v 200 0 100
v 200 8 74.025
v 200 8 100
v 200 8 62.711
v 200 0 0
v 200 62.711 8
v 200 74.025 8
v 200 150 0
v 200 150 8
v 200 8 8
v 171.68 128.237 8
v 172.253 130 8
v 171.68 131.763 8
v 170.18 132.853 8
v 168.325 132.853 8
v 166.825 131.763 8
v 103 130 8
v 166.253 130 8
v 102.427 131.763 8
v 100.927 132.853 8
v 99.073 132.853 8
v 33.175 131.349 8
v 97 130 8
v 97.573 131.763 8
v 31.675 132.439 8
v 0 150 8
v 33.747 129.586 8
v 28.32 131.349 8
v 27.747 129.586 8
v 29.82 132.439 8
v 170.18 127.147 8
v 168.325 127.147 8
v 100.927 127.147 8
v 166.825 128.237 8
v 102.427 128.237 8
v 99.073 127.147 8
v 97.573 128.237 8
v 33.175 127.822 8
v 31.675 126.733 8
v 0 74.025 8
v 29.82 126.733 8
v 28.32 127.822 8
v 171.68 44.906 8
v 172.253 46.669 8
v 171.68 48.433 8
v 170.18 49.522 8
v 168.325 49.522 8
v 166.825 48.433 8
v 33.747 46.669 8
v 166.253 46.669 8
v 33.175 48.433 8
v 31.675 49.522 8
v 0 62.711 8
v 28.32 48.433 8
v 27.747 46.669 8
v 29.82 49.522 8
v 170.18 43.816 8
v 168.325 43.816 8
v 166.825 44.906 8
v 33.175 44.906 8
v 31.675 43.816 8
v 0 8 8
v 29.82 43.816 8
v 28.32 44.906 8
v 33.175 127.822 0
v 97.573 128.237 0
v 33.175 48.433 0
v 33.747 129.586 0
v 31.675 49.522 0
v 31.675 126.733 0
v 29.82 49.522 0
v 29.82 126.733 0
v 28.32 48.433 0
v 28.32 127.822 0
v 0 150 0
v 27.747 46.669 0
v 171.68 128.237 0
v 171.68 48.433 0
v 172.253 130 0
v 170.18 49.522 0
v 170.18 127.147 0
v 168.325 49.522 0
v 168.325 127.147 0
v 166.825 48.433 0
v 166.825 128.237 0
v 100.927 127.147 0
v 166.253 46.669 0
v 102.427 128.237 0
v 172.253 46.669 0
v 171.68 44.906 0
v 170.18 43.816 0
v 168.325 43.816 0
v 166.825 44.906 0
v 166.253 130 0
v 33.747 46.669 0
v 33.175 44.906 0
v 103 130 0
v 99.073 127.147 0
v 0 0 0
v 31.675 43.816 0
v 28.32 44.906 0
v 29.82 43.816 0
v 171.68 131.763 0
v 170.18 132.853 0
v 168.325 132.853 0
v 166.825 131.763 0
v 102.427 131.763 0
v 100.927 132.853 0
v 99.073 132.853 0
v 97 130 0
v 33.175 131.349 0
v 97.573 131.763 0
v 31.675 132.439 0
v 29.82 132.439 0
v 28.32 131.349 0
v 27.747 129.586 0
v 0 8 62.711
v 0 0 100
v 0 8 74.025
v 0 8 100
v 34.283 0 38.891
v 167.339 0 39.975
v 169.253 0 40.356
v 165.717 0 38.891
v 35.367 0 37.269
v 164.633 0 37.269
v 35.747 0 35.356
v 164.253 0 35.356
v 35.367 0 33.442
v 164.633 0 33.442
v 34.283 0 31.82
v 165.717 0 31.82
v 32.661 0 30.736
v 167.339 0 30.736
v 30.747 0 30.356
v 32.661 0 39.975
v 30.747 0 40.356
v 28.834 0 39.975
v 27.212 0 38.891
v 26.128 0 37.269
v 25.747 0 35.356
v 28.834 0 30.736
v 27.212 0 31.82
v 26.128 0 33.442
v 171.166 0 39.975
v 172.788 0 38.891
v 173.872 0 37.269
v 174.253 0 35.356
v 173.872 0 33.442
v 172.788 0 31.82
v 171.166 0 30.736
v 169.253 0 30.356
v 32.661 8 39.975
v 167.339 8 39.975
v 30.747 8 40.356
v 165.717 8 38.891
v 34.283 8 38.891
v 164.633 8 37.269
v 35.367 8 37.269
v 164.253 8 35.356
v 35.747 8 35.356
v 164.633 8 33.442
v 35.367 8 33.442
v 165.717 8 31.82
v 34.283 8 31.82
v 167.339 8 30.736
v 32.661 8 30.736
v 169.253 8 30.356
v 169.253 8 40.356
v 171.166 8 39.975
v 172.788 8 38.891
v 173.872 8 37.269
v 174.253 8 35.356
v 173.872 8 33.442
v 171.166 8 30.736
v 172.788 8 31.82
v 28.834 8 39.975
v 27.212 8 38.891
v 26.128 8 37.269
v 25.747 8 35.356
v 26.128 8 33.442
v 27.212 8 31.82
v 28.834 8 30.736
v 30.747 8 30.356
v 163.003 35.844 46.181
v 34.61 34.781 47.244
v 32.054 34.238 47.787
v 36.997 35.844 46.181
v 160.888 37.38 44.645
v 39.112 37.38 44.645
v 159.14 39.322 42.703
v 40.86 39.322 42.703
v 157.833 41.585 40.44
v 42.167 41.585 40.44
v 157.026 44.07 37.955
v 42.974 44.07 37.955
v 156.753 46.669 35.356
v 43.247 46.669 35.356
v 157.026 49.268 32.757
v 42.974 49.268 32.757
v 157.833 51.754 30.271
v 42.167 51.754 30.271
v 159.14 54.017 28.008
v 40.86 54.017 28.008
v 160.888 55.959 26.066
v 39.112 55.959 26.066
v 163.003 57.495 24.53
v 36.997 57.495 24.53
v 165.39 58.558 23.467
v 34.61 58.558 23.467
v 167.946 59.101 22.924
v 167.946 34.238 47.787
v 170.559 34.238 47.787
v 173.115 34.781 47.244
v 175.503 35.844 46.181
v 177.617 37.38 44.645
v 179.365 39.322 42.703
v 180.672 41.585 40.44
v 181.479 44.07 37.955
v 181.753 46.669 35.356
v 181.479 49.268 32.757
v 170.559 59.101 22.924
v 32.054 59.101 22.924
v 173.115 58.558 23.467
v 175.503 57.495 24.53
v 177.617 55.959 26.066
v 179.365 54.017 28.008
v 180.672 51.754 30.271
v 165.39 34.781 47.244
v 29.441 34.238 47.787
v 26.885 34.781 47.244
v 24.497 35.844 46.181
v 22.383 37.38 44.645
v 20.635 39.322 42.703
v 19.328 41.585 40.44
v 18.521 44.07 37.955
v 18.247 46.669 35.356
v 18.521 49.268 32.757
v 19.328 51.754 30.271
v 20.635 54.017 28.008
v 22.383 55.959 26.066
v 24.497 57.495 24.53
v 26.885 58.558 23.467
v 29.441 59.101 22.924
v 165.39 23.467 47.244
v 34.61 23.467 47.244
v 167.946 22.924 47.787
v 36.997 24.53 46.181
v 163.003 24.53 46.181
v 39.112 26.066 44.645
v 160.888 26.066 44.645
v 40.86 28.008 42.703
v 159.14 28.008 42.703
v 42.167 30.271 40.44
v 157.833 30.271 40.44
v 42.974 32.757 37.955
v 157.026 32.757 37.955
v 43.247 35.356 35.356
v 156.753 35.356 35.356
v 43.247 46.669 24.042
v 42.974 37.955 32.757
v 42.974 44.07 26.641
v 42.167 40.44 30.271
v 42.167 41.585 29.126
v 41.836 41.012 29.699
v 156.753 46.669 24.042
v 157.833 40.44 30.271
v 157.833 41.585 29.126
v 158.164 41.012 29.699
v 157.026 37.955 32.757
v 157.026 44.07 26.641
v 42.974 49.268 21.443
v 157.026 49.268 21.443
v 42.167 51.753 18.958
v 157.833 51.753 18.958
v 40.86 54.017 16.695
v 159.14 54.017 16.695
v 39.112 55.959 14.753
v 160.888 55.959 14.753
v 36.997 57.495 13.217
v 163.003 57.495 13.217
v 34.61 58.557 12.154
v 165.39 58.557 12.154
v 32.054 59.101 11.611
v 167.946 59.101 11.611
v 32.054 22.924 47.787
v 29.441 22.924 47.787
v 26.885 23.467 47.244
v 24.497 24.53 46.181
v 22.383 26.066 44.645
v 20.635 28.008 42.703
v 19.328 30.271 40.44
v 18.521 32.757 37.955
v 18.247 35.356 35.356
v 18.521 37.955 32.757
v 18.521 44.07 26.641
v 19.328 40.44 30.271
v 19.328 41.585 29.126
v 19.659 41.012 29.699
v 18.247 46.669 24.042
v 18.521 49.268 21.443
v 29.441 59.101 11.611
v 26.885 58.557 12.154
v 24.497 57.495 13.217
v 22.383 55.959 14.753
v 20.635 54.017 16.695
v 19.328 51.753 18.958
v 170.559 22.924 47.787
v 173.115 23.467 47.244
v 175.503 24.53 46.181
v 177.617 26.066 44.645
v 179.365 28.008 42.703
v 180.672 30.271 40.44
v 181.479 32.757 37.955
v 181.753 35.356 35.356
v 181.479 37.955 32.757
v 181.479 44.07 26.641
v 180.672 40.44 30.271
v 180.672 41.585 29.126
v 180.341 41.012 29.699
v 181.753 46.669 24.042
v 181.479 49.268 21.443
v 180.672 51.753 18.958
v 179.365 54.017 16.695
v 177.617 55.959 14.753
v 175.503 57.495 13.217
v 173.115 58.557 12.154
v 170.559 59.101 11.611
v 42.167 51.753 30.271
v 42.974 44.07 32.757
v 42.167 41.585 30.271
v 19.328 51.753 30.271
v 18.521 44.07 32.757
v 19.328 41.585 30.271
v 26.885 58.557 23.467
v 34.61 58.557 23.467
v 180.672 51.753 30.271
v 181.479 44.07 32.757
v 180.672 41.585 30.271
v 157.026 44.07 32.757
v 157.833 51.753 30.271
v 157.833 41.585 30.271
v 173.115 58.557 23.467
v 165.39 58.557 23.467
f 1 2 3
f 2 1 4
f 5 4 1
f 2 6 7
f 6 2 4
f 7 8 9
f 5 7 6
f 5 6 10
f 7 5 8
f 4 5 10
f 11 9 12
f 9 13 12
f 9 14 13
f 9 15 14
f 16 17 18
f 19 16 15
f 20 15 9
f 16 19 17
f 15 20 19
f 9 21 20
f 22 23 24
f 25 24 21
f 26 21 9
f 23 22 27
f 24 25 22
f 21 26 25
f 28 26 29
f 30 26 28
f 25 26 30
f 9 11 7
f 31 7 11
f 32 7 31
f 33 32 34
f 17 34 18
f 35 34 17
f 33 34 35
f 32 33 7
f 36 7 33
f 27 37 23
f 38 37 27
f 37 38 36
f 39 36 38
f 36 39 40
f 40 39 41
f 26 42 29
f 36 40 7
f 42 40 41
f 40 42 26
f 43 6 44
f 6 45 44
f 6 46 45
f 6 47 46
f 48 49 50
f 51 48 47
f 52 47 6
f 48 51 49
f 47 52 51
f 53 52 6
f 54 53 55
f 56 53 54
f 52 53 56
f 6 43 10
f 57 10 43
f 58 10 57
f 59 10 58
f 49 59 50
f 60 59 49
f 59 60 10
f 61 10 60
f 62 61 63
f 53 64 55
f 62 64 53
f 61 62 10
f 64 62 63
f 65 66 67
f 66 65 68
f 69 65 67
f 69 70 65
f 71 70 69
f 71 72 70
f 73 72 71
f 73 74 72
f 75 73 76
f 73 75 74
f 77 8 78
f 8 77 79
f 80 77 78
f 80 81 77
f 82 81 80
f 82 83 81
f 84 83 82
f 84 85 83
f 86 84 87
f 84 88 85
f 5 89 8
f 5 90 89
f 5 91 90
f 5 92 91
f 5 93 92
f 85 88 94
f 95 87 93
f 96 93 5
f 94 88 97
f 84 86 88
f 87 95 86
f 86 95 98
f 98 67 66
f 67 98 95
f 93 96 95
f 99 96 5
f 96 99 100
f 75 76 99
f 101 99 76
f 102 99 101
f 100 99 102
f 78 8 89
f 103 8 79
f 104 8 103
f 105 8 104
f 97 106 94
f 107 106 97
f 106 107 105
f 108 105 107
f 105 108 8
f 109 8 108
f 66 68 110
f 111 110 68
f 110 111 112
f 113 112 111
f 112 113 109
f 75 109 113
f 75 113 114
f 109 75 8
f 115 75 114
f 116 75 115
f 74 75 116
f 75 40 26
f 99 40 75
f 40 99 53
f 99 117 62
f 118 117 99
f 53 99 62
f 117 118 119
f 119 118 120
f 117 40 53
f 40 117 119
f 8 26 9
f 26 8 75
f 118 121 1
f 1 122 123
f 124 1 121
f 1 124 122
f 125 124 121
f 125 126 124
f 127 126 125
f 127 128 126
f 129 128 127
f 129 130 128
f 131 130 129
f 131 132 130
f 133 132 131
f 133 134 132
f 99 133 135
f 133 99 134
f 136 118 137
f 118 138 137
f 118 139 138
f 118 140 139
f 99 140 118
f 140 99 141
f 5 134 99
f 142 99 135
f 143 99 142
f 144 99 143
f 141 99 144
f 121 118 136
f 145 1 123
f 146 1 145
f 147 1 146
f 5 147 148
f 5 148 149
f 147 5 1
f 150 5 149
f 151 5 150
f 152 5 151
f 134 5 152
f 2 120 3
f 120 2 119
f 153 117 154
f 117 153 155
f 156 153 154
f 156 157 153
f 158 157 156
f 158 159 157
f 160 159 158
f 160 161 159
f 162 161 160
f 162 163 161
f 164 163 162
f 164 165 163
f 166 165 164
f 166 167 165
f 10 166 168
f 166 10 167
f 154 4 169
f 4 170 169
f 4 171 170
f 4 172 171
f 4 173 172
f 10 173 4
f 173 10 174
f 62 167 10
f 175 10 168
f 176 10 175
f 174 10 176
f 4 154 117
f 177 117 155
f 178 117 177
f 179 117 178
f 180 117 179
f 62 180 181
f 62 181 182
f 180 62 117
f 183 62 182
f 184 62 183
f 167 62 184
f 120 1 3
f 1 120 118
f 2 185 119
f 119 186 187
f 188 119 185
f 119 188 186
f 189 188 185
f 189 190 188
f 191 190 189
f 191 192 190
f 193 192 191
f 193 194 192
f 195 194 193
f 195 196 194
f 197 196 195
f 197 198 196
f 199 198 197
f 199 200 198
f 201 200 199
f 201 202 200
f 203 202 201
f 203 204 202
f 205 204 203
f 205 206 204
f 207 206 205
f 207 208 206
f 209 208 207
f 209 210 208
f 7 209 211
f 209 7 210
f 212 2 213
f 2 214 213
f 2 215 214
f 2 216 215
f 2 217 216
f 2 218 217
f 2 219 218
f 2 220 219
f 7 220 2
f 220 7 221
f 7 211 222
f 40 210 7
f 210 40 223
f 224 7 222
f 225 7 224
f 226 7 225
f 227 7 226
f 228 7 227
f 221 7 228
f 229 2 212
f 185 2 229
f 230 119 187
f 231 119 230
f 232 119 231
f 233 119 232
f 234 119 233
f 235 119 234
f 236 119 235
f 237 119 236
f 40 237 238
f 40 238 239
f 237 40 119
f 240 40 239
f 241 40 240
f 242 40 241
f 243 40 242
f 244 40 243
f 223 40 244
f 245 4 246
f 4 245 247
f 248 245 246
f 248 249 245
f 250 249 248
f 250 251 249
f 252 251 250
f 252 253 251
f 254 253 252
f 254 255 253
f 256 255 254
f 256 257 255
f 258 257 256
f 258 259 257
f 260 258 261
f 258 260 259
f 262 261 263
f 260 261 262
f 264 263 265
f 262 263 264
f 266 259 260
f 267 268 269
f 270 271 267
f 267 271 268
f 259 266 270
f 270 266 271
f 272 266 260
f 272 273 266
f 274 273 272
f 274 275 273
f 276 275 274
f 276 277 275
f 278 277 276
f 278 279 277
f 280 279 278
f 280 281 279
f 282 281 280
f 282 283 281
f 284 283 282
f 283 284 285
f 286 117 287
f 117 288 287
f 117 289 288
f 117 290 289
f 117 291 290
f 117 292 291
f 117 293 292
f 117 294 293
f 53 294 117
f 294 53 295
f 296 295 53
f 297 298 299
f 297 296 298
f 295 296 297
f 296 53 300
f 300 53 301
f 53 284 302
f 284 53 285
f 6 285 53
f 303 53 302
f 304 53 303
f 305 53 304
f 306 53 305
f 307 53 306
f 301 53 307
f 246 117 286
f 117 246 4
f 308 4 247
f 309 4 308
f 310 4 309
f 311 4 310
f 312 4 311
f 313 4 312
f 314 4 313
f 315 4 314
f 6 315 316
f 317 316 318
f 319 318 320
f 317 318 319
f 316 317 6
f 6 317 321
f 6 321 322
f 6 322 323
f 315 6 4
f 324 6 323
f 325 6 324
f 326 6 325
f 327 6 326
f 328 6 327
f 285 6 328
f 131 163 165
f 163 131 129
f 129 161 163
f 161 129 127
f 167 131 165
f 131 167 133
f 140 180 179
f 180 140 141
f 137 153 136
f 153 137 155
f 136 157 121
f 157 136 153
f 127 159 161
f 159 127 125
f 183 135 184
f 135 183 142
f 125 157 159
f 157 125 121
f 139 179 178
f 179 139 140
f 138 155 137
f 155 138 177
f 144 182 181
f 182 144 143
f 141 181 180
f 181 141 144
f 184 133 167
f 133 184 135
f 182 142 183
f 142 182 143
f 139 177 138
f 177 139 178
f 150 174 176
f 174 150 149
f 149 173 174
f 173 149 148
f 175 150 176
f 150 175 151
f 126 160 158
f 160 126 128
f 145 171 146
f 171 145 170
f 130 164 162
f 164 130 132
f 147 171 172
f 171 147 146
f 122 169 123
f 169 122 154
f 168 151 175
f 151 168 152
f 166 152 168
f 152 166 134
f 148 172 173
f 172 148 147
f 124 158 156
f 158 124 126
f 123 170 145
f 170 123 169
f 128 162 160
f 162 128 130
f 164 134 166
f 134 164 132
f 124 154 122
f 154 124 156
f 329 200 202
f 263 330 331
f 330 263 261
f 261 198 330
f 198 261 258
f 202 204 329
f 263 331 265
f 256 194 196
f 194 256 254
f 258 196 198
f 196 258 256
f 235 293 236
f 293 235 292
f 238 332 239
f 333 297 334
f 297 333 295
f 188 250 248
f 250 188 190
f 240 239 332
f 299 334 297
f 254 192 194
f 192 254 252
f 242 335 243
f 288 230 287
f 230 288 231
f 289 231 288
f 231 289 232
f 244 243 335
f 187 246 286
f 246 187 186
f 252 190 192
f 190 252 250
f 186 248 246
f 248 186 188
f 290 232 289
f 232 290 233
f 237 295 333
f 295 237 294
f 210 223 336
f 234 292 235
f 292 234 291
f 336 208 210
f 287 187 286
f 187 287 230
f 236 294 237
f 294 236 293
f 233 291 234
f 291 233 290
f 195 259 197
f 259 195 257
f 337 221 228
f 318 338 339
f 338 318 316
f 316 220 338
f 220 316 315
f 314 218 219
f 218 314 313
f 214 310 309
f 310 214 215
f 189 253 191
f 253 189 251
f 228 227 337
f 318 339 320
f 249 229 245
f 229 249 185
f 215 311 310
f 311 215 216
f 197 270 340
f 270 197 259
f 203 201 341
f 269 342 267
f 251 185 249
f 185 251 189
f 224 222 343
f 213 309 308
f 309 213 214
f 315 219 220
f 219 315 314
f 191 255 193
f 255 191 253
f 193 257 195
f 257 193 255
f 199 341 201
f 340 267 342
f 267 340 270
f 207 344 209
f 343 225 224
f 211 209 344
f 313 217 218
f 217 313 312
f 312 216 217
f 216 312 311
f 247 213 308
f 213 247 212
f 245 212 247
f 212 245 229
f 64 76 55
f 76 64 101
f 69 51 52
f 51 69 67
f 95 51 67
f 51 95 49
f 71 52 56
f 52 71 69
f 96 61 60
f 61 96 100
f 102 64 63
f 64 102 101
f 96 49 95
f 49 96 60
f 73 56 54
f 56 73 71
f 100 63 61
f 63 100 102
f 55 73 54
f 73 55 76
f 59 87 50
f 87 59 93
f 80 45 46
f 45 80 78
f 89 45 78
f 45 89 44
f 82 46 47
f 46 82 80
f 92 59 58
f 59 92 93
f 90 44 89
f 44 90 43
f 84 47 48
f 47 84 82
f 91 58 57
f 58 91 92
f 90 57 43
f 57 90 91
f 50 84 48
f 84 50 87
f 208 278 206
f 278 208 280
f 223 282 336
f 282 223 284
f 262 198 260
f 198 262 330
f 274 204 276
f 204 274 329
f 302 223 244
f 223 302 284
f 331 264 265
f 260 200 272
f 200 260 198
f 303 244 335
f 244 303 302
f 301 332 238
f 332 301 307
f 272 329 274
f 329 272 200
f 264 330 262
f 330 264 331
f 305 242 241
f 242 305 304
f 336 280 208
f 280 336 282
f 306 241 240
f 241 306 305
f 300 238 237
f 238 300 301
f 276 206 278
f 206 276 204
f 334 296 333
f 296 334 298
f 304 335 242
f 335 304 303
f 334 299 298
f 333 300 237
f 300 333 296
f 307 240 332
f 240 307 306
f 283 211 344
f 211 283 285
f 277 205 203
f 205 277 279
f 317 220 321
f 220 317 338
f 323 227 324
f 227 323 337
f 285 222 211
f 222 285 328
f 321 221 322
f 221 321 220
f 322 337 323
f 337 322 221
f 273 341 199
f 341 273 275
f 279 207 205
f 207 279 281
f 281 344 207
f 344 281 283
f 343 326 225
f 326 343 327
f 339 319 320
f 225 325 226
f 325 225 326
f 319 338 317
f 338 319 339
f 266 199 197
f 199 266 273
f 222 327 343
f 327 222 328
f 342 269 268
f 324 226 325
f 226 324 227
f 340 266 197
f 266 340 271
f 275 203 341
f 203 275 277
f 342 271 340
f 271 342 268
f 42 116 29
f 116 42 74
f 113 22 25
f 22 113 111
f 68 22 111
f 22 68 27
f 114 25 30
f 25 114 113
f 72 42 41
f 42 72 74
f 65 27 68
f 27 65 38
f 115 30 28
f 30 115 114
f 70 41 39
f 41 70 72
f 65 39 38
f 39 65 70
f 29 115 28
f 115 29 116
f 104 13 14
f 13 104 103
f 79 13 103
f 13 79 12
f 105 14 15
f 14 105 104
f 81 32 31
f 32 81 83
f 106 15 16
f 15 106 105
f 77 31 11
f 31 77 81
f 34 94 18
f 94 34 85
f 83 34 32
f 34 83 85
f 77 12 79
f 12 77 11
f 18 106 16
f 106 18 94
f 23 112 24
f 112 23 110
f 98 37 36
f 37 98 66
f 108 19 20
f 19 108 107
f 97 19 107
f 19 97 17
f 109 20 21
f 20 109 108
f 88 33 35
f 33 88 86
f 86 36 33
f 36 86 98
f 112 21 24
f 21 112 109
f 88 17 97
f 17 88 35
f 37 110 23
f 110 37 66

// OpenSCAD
width=200;
thickness=8;
depth=150;
height=100;
interScrew=(150.56+126.45)/2;
screwDiameter=10;
screwBigDiameter=25;
screwSmallDiameter=6;

screwHeight=height/1.4142/2;
screwDistance=(width-interScrew)/2;

difference() {
  union() {
    cube([width, depth, thickness]);
    translate([0,thickness,0]) rotate([90,0,0]) cube([width, height, thickness]);
    translate([0,0,height/1.4142]) rotate([-45,0,0]) cube([width, height, thickness]);
  }
  translate([screwDistance,-0.005,screwHeight]) rotate([-90,0,0])  cylinder(d=screwDiameter, h=height);
  translate([width-screwDistance,-0.005,screwHeight]) rotate([-90,0,0])  cylinder(d=screwDiameter, h=height);
  translate([screwDistance,thickness+0.005,screwHeight]) rotate([-90,0,0])  cylinder(d=screwBigDiameter, h=height);
  translate([width-screwDistance,thickness+0.005,screwHeight]) rotate([-90,0,0])  cylinder(d=screwBigDiameter, h=height);
  
  translate([screwDistance,screwHeight+thickness*1.4142,-0.005]) cylinder(d=screwSmallDiameter, h=height);
  translate([width-screwDistance,screwHeight+thickness*1.4142,-0.005]) cylinder(d=screwSmallDiameter, h=height);
  translate([screwDistance,screwHeight+thickness*1.4142,thickness+0.005]) cylinder(d=screwBigDiameter, h=height);
  translate([width-screwDistance,screwHeight+thickness*1.4142,thickness+0.005]) cylinder(d=screwBigDiameter, h=height);
  
  translate([screwDistance,depth-20.4142,-0.005]) cylinder(d=screwSmallDiameter, h=height);
  translate([width-screwDistance,depth-20,-0.005]) cylinder(d=screwSmallDiameter, h=height);
  translate([width/2,depth-20,-0.005]) cylinder(d=screwSmallDiameter, h=height);
}
